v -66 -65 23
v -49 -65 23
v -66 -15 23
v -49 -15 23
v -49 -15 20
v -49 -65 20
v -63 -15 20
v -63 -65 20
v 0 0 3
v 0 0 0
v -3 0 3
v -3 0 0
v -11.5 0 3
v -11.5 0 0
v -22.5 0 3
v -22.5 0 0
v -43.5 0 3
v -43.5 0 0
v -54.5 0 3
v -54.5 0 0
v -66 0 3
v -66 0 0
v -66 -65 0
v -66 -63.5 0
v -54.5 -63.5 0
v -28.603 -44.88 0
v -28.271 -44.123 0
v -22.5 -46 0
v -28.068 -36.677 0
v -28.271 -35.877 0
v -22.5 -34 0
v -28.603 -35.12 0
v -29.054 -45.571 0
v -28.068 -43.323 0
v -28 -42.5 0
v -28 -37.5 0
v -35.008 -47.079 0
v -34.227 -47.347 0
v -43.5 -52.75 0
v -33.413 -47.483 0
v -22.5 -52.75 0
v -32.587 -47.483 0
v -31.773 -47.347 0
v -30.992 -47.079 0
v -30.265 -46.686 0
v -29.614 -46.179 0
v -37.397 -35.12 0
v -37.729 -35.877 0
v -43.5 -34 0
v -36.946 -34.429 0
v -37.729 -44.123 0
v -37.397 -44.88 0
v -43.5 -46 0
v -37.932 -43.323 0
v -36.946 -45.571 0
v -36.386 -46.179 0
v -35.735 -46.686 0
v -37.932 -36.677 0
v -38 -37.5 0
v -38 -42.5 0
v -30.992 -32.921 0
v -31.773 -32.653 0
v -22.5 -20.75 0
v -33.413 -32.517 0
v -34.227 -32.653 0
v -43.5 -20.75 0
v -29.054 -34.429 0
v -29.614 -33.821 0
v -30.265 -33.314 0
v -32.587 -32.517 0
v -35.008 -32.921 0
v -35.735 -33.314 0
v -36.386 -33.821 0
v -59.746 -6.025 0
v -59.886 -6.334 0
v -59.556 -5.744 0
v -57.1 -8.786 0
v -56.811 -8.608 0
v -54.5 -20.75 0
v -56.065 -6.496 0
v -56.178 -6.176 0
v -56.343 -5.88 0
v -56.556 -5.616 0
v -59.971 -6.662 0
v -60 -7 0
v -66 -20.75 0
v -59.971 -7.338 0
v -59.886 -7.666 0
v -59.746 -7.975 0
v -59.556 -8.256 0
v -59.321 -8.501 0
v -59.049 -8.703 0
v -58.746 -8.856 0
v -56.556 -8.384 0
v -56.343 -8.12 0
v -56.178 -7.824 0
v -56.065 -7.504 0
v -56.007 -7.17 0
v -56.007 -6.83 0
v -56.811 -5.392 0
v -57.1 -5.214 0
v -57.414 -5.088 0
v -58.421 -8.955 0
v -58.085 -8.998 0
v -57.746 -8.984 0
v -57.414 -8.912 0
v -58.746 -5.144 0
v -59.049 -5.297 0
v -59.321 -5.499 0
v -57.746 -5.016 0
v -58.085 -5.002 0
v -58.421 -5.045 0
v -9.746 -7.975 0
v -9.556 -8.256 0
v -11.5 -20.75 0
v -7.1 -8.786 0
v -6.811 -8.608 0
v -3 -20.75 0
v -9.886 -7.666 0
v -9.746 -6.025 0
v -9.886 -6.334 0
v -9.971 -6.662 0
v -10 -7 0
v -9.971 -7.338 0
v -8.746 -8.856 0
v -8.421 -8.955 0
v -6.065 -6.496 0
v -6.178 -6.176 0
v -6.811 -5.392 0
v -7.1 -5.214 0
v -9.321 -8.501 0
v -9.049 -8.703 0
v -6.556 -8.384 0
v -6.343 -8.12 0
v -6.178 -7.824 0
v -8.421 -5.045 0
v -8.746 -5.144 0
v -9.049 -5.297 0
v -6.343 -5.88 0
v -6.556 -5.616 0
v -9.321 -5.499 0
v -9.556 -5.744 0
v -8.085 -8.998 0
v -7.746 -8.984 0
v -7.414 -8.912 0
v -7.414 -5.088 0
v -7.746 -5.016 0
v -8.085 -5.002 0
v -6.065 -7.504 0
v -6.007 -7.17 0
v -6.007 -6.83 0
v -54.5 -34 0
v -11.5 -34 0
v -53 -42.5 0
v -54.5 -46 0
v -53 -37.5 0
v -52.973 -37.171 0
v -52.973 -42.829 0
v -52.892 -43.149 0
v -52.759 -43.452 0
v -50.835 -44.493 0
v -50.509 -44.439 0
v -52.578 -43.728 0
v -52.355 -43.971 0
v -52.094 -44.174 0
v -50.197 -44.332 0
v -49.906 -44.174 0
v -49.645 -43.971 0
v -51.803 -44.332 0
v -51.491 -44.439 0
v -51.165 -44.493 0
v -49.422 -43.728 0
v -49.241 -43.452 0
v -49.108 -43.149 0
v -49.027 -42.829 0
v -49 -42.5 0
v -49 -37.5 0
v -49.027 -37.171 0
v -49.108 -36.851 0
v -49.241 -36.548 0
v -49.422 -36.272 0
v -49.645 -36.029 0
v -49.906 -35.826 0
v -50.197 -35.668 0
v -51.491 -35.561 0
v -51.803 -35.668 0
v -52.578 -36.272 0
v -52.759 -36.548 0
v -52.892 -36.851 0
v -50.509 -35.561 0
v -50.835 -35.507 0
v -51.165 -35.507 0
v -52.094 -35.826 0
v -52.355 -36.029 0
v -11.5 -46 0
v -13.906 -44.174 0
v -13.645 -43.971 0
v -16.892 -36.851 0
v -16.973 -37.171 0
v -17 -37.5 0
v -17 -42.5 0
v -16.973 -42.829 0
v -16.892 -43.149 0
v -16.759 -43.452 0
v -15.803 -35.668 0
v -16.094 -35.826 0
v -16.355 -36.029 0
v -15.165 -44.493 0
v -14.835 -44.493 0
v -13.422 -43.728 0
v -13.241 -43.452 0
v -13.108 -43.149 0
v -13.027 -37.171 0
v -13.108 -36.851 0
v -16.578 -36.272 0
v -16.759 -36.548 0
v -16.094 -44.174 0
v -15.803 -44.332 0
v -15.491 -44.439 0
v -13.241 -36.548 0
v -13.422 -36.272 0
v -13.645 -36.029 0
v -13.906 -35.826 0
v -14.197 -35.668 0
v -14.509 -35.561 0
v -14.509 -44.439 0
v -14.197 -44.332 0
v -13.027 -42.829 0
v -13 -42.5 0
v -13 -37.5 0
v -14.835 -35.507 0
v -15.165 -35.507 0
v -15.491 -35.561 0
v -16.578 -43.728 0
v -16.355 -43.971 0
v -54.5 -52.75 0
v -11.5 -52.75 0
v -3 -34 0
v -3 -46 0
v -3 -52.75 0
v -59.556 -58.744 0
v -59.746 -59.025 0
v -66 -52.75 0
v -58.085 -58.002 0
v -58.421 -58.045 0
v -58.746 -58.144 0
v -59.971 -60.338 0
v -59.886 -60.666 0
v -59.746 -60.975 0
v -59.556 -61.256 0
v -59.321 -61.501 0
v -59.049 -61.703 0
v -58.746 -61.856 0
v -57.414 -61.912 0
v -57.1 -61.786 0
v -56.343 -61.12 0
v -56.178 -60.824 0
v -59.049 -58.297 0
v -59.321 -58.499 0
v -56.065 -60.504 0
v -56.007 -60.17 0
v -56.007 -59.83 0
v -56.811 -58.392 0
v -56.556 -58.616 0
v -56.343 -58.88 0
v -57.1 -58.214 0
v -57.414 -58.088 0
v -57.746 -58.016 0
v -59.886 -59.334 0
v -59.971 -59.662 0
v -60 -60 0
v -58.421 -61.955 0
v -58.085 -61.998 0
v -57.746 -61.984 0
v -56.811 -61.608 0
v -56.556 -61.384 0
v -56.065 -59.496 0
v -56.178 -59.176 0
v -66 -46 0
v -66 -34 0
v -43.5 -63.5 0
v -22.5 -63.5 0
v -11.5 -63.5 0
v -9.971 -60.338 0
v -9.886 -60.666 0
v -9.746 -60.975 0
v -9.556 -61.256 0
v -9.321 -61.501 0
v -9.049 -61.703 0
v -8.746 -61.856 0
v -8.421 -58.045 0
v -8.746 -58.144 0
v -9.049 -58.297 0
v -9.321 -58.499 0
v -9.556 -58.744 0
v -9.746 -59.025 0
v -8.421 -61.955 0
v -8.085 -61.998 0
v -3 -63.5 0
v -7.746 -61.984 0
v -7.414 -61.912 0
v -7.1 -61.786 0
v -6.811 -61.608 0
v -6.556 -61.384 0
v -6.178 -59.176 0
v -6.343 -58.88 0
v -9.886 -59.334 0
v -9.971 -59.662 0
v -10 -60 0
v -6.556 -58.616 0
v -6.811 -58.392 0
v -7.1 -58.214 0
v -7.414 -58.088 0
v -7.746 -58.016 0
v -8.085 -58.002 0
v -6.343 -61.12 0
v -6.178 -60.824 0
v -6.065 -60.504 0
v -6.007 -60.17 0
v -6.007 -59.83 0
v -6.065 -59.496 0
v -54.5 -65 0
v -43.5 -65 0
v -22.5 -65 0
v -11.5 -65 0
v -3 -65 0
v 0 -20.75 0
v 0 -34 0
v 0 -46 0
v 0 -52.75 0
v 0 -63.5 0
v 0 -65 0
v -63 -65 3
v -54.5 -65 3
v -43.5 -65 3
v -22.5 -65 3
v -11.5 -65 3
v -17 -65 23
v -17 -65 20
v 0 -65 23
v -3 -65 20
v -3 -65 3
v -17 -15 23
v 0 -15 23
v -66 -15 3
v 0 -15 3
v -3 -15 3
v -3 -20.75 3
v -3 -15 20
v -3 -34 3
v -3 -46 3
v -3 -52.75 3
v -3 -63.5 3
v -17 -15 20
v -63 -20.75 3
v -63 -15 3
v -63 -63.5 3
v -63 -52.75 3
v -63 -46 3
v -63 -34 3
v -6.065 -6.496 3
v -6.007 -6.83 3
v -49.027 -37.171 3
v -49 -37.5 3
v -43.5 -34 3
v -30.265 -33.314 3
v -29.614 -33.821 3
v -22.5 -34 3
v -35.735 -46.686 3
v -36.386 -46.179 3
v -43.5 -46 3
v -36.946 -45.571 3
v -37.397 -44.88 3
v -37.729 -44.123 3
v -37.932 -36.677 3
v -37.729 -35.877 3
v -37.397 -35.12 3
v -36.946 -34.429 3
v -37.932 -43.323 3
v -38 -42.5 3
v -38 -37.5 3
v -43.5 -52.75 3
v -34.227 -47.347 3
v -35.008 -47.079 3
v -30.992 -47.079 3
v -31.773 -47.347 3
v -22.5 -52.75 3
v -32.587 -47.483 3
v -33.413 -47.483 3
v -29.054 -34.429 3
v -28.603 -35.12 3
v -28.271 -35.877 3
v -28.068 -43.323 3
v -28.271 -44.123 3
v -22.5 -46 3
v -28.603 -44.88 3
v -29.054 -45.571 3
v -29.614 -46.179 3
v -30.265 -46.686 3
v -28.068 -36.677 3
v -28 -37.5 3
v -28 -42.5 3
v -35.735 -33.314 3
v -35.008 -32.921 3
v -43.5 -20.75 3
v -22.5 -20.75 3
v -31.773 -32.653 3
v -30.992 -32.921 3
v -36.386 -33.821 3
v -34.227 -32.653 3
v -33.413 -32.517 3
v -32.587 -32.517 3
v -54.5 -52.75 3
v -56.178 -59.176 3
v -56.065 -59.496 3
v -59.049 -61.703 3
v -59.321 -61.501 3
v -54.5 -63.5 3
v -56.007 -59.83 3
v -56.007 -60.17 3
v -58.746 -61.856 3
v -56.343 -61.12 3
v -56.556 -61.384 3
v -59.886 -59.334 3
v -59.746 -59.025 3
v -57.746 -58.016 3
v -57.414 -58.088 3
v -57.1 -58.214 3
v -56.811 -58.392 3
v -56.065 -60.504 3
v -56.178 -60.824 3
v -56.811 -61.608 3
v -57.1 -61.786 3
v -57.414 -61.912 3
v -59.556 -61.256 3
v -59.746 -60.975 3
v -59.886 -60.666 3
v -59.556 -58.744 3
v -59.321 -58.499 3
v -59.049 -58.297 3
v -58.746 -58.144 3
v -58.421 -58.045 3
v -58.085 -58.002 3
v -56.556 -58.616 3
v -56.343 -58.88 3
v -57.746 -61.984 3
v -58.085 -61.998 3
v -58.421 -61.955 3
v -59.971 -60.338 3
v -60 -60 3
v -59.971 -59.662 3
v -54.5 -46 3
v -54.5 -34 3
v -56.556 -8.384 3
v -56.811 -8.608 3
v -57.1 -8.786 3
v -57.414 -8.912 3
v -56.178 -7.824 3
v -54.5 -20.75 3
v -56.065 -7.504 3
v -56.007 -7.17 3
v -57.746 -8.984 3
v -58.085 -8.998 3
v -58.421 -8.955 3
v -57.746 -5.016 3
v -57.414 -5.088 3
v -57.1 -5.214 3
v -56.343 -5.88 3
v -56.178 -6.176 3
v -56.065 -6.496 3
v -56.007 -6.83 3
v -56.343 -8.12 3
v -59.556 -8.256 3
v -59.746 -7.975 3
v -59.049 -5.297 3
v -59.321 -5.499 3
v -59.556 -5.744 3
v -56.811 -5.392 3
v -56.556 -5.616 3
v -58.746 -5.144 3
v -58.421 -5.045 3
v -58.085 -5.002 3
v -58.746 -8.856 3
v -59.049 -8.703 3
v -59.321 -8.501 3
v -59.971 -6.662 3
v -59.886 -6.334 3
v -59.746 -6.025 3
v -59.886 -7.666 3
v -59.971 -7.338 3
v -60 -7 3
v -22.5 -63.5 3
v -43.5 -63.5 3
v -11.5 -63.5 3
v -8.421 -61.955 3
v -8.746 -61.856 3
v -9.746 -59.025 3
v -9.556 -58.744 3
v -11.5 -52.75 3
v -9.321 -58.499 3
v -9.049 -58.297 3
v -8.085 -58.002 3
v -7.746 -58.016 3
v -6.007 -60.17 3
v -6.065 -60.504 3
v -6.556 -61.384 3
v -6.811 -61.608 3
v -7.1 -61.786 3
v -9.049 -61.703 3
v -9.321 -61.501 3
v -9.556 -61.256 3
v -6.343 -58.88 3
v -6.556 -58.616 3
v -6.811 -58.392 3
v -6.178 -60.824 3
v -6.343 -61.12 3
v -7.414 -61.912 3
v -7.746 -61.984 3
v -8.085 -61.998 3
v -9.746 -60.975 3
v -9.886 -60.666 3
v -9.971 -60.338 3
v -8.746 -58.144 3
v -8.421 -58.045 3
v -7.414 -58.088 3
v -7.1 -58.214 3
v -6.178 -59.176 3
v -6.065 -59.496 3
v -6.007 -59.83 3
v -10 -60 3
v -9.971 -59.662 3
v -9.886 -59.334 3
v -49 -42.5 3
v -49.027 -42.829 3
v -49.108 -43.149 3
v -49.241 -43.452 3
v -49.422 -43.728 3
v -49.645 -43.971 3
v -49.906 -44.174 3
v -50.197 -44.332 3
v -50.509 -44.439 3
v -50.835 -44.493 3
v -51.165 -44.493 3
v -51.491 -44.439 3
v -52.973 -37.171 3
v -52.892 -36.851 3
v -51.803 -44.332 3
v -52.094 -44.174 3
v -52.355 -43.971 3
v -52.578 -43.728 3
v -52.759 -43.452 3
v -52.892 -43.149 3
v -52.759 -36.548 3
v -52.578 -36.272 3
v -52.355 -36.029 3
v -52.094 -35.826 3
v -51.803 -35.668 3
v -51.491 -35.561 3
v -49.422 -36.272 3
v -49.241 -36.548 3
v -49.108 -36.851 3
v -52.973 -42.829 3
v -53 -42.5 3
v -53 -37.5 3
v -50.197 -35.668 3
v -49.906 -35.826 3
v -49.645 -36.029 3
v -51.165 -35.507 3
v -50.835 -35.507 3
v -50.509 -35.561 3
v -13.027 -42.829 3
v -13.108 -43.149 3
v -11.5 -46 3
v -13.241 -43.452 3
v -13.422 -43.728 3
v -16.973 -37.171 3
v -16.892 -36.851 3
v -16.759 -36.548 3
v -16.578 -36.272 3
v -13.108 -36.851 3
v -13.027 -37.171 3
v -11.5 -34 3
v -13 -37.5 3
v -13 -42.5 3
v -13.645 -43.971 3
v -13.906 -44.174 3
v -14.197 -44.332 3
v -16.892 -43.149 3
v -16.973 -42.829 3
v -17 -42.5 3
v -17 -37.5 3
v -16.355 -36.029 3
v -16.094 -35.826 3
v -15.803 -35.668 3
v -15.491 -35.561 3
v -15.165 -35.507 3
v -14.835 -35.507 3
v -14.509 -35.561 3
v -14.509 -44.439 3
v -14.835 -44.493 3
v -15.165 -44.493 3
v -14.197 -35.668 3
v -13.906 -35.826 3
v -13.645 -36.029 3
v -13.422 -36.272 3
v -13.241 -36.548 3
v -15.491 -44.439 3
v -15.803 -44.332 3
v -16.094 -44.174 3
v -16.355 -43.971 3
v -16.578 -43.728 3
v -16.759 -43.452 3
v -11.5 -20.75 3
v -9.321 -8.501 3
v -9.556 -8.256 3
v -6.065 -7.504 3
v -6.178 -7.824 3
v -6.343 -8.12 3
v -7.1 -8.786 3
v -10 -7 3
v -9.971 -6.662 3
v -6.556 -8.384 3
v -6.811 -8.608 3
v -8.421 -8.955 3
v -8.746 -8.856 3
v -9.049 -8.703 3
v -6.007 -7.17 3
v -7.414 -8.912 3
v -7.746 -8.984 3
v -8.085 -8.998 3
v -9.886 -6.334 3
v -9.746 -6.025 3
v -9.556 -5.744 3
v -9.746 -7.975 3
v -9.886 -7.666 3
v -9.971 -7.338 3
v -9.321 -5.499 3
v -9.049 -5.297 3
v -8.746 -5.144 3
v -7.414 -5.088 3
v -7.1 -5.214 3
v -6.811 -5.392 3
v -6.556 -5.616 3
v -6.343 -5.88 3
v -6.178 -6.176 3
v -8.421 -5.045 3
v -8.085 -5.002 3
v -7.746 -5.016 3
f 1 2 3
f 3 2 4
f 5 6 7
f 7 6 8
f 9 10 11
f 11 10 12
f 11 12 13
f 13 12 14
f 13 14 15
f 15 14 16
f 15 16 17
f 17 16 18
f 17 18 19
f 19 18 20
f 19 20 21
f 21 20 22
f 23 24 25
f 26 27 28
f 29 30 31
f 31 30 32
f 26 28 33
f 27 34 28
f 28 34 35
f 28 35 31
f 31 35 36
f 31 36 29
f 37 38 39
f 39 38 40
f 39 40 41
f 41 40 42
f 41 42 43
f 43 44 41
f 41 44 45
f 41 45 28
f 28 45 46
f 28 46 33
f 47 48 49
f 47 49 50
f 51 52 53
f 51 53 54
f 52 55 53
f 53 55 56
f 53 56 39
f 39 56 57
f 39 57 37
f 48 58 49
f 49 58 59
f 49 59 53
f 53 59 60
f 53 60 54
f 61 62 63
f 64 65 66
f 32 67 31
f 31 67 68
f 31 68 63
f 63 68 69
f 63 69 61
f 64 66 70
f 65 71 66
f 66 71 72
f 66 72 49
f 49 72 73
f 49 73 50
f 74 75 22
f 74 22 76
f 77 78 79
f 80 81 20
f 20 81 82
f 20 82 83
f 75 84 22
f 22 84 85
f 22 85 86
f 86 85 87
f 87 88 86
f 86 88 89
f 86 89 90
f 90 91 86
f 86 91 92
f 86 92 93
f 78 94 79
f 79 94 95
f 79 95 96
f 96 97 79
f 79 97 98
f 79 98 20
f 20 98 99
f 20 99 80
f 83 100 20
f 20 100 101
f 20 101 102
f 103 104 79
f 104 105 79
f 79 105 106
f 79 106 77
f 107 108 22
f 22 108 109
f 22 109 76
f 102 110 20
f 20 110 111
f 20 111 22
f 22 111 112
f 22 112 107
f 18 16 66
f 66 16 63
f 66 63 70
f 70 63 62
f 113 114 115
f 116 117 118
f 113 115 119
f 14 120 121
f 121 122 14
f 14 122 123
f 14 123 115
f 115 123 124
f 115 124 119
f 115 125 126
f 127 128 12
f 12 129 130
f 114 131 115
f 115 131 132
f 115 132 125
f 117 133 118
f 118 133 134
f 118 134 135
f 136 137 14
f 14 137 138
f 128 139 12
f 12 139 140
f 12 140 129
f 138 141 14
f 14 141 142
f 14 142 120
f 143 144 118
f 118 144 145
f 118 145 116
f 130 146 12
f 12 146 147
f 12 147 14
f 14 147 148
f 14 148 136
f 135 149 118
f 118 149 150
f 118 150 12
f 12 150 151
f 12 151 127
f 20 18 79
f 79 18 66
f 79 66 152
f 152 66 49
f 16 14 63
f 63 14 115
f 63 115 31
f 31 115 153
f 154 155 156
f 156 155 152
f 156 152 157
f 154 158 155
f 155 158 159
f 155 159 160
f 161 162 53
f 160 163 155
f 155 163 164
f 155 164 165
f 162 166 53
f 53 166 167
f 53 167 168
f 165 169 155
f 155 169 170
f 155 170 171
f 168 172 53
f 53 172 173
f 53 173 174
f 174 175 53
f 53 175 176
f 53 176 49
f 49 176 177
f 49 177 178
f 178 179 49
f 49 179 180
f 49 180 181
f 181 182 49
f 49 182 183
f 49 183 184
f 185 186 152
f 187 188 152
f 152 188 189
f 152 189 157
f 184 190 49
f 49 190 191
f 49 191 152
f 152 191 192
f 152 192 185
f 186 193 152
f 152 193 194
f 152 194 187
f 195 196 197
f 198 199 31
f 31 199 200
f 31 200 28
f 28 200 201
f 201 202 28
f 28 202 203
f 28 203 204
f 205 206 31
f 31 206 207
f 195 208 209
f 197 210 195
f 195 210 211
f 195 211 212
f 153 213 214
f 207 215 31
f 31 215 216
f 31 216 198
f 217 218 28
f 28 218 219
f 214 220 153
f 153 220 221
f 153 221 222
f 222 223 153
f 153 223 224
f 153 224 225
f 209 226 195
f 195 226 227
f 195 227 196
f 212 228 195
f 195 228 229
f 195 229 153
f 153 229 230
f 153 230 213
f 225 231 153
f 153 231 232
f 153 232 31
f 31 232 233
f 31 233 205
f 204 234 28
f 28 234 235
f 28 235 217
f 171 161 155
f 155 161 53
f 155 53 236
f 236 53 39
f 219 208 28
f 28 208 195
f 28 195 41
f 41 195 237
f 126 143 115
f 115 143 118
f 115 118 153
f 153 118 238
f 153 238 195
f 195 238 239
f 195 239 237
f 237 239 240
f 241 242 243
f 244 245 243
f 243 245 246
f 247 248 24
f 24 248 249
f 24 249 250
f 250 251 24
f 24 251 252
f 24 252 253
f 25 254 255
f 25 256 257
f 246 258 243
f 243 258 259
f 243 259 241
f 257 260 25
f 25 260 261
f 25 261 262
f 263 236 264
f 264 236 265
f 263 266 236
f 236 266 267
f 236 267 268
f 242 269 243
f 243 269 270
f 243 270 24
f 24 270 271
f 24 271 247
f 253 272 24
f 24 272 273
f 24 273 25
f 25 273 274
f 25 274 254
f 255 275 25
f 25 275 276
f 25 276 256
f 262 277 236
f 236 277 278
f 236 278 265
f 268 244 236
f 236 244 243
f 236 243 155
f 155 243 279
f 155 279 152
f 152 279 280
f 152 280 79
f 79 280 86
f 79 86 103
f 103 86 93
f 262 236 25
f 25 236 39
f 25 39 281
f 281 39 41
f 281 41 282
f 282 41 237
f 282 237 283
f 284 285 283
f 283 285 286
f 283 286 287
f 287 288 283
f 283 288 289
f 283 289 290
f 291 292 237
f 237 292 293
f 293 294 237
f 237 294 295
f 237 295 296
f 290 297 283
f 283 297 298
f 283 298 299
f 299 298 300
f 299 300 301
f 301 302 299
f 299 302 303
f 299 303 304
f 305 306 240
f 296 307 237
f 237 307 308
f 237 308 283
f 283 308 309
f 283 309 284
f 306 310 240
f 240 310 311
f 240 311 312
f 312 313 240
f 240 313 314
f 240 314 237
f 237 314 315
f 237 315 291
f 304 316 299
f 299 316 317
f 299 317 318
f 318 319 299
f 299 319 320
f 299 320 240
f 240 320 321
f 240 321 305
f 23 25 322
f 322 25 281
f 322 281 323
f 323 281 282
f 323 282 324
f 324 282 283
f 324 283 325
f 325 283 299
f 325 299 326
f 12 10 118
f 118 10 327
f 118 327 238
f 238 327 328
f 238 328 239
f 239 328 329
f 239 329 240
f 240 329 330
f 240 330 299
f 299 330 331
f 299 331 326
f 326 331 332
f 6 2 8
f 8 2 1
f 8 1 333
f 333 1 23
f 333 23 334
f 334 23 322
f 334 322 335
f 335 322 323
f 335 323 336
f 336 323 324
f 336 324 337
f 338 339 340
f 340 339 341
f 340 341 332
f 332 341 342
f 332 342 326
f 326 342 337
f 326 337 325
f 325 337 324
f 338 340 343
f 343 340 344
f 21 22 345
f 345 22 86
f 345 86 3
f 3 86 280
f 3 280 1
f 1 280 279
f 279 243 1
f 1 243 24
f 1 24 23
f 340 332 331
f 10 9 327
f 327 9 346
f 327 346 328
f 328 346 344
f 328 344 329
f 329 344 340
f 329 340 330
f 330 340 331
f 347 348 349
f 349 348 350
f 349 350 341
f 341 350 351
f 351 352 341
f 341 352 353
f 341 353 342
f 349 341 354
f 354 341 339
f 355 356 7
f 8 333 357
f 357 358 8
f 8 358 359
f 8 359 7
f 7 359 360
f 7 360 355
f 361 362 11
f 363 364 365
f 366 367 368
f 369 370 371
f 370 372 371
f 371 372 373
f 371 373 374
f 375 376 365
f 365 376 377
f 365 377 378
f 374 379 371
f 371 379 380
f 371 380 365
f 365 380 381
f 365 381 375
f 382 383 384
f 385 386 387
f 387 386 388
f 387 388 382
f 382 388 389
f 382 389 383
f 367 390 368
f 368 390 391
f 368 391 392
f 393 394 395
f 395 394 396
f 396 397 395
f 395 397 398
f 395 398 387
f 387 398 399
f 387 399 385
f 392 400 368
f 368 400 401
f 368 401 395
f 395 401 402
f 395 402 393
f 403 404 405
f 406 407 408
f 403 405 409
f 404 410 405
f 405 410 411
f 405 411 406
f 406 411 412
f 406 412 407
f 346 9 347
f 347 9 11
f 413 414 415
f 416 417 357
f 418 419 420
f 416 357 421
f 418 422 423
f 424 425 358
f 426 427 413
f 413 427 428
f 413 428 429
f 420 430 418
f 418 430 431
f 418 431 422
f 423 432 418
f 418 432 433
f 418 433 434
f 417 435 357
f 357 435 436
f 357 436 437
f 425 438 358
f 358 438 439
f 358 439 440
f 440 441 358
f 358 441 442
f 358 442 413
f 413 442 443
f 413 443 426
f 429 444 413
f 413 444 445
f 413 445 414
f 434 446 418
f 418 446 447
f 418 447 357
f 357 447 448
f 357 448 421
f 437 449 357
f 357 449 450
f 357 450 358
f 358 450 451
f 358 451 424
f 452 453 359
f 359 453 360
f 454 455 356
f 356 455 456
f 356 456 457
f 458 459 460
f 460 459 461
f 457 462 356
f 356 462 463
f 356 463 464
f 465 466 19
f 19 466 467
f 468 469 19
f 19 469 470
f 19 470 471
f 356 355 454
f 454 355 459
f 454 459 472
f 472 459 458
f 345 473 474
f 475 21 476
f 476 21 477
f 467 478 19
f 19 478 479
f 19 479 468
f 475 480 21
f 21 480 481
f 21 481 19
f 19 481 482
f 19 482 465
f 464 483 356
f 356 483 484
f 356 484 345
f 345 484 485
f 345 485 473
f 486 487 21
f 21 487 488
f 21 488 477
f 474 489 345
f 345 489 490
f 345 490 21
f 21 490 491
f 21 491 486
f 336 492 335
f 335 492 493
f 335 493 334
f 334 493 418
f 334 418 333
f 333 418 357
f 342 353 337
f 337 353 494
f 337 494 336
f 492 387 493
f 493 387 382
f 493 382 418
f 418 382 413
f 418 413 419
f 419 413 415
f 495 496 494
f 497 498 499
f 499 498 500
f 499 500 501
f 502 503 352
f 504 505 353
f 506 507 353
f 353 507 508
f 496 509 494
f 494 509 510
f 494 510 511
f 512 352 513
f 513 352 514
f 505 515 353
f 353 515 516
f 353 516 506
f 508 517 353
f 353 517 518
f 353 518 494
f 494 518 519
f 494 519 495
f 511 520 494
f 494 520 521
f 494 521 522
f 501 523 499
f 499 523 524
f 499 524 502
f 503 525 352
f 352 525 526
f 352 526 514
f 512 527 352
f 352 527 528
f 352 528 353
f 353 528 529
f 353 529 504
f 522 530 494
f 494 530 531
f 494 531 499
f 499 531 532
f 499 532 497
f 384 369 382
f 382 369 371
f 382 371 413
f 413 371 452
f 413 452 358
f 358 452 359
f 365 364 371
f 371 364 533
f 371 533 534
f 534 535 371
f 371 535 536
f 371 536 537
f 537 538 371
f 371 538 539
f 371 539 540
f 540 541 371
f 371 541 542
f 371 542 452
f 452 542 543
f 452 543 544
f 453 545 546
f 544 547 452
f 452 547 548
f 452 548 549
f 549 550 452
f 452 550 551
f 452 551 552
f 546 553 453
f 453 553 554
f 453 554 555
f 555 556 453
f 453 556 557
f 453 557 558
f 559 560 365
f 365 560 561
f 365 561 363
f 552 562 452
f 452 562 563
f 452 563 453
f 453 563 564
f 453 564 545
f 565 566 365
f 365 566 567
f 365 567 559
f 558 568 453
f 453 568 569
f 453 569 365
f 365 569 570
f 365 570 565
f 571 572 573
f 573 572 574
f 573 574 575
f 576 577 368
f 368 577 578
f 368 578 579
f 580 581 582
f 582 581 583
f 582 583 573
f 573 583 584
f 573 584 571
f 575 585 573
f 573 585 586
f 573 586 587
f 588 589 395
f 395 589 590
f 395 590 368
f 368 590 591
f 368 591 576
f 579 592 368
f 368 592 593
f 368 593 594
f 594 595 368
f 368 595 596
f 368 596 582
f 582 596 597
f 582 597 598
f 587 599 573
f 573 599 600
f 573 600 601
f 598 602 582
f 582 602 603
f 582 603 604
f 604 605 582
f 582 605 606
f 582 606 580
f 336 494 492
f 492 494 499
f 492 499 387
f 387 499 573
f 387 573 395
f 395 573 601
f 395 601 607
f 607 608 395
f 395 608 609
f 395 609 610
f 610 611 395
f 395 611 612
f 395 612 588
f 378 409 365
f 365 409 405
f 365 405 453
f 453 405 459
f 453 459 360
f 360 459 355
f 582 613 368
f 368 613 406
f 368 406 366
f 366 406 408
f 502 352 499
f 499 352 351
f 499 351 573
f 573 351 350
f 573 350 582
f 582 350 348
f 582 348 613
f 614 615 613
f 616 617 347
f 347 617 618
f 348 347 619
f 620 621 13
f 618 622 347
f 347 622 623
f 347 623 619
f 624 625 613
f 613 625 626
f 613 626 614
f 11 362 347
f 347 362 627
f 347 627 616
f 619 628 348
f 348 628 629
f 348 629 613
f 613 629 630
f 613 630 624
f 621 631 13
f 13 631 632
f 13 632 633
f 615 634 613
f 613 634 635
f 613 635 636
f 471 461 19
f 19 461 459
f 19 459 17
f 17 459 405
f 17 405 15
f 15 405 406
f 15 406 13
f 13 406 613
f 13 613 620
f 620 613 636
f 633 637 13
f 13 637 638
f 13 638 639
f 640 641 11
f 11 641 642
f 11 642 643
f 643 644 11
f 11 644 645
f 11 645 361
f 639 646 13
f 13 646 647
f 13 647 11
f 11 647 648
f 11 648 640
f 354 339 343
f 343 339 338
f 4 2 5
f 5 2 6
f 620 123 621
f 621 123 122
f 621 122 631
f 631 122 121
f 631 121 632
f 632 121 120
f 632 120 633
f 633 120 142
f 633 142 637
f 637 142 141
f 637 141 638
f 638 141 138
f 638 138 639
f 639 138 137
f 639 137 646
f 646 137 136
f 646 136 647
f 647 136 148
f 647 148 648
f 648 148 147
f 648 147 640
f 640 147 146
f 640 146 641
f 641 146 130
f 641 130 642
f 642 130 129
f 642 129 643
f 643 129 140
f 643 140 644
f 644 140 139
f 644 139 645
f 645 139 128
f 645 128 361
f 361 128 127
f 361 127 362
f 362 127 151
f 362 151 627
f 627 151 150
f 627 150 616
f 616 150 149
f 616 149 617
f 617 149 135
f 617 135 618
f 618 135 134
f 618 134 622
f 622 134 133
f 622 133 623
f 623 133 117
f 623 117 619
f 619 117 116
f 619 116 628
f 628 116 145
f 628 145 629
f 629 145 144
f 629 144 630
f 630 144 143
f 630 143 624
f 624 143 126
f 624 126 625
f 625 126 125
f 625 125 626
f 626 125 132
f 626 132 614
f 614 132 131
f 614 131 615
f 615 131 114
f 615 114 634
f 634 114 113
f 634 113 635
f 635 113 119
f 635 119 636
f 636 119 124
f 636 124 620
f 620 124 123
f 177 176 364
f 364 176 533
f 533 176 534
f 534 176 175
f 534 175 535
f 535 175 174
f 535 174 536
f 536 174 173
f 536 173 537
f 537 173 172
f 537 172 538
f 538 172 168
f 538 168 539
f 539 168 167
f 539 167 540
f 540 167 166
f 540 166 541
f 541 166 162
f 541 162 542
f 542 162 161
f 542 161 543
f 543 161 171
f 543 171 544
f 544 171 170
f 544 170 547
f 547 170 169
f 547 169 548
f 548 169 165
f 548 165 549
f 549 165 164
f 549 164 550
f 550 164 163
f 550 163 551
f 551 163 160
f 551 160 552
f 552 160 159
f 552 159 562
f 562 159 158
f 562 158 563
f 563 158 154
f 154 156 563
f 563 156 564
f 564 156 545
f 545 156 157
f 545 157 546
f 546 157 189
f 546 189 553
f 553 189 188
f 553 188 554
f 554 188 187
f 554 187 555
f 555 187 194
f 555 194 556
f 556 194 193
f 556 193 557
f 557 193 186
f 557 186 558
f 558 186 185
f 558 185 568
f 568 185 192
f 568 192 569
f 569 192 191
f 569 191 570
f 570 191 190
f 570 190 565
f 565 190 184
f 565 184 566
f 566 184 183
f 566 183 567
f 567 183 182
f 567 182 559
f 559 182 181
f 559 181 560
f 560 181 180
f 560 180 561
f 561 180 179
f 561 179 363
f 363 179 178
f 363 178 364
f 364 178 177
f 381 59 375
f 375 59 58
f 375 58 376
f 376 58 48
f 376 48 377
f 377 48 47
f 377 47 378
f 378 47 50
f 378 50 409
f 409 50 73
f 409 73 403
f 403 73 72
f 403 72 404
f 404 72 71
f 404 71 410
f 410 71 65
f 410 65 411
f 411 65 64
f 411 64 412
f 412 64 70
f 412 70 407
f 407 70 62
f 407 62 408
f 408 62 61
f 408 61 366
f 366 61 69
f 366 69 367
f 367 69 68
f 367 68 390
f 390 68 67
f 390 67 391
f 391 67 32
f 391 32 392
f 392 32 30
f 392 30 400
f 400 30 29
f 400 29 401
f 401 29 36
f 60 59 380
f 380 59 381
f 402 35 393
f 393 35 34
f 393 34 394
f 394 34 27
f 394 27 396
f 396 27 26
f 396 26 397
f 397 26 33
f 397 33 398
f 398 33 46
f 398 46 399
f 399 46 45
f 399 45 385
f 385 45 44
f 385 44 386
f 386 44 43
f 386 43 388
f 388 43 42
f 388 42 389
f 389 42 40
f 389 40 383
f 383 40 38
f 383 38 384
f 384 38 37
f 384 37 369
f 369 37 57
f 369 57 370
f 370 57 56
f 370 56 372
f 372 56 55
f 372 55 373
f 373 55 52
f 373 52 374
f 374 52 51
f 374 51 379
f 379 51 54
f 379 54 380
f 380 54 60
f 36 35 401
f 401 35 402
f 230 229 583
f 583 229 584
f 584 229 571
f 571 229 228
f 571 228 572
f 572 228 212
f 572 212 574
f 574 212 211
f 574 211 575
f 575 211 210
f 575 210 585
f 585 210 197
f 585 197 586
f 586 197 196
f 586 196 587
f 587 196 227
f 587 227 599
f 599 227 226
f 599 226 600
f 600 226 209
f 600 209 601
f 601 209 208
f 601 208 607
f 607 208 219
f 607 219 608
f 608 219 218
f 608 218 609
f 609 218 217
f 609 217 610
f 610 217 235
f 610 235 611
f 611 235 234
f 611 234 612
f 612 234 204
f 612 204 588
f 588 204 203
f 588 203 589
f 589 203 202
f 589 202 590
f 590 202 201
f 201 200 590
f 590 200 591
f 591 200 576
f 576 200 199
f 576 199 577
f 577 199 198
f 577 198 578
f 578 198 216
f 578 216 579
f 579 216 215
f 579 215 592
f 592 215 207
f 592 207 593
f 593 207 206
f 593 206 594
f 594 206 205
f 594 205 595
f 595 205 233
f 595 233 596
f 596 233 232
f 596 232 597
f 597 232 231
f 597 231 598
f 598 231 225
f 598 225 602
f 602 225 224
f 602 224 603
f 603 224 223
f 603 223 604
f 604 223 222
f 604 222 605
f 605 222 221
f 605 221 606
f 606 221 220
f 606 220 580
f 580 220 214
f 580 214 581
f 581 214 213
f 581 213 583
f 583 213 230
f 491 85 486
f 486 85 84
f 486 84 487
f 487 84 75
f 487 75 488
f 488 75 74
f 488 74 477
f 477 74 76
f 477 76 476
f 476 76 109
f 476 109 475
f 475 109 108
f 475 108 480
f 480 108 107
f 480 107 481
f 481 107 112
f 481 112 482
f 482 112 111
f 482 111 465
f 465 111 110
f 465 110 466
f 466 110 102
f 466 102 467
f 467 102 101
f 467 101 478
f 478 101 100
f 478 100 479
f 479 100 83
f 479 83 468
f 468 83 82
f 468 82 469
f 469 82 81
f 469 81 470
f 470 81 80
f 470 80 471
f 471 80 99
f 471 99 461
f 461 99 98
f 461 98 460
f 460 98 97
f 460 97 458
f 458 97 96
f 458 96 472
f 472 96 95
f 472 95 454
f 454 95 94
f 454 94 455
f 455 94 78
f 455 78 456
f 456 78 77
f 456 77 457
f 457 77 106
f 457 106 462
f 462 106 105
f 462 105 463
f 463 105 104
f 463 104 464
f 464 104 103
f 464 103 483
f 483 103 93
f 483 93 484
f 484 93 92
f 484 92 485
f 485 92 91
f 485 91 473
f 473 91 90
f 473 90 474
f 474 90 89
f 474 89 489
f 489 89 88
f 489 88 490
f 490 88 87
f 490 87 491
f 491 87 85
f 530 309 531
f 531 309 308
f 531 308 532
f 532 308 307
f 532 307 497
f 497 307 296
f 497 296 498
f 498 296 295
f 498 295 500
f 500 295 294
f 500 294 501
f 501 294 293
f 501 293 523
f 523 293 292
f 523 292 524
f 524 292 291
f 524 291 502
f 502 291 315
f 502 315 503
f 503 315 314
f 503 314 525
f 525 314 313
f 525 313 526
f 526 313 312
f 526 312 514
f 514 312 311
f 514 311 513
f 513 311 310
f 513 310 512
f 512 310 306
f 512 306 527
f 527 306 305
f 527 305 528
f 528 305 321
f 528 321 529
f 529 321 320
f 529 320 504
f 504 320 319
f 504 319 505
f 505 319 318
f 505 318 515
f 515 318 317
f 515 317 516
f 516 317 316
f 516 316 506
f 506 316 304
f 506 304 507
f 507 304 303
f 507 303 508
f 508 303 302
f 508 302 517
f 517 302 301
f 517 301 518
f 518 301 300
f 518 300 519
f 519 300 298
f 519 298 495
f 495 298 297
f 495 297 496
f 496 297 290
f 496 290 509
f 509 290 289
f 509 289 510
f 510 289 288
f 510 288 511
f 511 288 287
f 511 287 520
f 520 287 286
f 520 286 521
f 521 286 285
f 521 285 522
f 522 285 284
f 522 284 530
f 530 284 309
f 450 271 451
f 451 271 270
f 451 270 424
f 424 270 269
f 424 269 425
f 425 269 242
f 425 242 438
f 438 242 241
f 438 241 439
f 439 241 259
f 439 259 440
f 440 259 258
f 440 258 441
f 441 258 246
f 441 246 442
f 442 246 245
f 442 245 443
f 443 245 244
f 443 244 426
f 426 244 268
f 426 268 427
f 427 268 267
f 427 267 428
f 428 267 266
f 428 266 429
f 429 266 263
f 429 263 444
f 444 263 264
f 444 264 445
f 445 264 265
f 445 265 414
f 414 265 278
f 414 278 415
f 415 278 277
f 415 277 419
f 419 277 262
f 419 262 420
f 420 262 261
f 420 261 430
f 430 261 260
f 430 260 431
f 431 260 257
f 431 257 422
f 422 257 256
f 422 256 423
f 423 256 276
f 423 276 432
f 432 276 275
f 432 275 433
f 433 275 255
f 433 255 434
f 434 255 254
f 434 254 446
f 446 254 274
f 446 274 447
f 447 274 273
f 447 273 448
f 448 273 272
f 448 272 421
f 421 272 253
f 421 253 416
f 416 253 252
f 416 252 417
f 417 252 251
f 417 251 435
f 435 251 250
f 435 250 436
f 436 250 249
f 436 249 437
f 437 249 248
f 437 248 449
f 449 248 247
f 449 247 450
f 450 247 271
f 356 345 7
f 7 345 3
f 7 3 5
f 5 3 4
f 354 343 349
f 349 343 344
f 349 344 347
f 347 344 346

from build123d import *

# Parameters (mm, degrees)
SKETCH1_W           = 23
SKETCH1_H           = 65
BOSS_EXTRUDE1_DEPTH = 66
SKETCH2_W           = 60
SKETCH2_H           = 17
CUT_EXTRUDE1_DEPTH  = 66
CUT_EXTRUDE2_REACH  = 25
SKETCH3_W           = 32
SKETCH3_H           = 65
CUT_EXTRUDE3_REACH  = 25
SKETCH5_R           = 2
SKETCH6_W           = 17
SKETCH6_H           = 15
CUT_EXTRUDE4_DEPTH  = 20


with BuildPart() as part:
    # Sketch1 → Boss-Extrude1 (new body)
    with BuildSketch(Plane(origin=(0, 0, 0), x_dir=(0, 0, -1), z_dir=(1, 0, 0))):
        with Locations((-11.5, -32.5)):
            Rectangle(SKETCH1_W, SKETCH1_H)
    extrude(amount=-BOSS_EXTRUDE1_DEPTH)

    # Sketch2 → Cut-Extrude1 (cut, through all)
    with BuildSketch(Plane(origin=(0, 0, 0), x_dir=(1, 0, 0), z_dir=(0, 1, 0))):
        with Locations((-33, -11.5)):
            Rectangle(SKETCH2_W, SKETCH2_H)
    extrude(amount=-CUT_EXTRUDE1_DEPTH, mode=Mode.SUBTRACT)

    # Sketch3 → Cut-Extrude2 (cut, up to next)
    with BuildSketch(Plane.XY.offset(23), mode=Mode.PRIVATE) as cut_extrude2_sk1:
        with Locations((-33, -32.5)):
            Rectangle(SKETCH3_W, SKETCH3_H)
    cut_extrude2_tool1 = extrude(cut_extrude2_sk1.sketch, amount=-CUT_EXTRUDE2_REACH, mode=Mode.PRIVATE) & part.part
    add(cut_extrude2_tool1.solids().sort_by_distance((-33, -32.5, 23))[0], mode=Mode.SUBTRACT)

    # Sketch5 → Cut-Extrude3 (cut, up to next)
    with BuildSketch(Plane(origin=(0, 0, 0), x_dir=(-1, 0, 0), z_dir=(0, 0, -1)), mode=Mode.PRIVATE) as cut_extrude3_sk1:
        with Locations((8, -7)):
            Circle(SKETCH5_R)
    cut_extrude3_tool1 = extrude(cut_extrude3_sk1.sketch, amount=-CUT_EXTRUDE3_REACH, mode=Mode.PRIVATE) & part.part
    add(cut_extrude3_tool1.solids().sort_by_distance((-8, -7, 0))[0], mode=Mode.SUBTRACT)
    # Sketch5 → Cut-Extrude3 (cut, up to next)
    with BuildSketch(Plane(origin=(0, 0, 0), x_dir=(-1, 0, 0), z_dir=(0, 0, -1)), mode=Mode.PRIVATE) as cut_extrude3_sk2:
        with Locations((58, -7)):
            Circle(SKETCH5_R)
    cut_extrude3_tool2 = extrude(cut_extrude3_sk2.sketch, amount=-CUT_EXTRUDE3_REACH, mode=Mode.PRIVATE) & part.part
    add(cut_extrude3_tool2.solids().sort_by_distance((-58, -7, 0))[0], mode=Mode.SUBTRACT)
    # Sketch5 → Cut-Extrude3 (cut, up to next)
    with BuildSketch(Plane(origin=(0, 0, 0), x_dir=(-1, 0, 0), z_dir=(0, 0, -1)), mode=Mode.PRIVATE) as cut_extrude3_sk3:
        with Locations((8, -60)):
            Circle(SKETCH5_R)
    cut_extrude3_tool3 = extrude(cut_extrude3_sk3.sketch, amount=-CUT_EXTRUDE3_REACH, mode=Mode.PRIVATE) & part.part
    add(cut_extrude3_tool3.solids().sort_by_distance((-8, -60, 0))[0], mode=Mode.SUBTRACT)
    # Sketch5 → Cut-Extrude3 (cut, up to next)
    with BuildSketch(Plane(origin=(0, 0, 0), x_dir=(-1, 0, 0), z_dir=(0, 0, -1)), mode=Mode.PRIVATE) as cut_extrude3_sk4:
        with Locations((58, -60)):
            Circle(SKETCH5_R)
    cut_extrude3_tool4 = extrude(cut_extrude3_sk4.sketch, amount=-CUT_EXTRUDE3_REACH, mode=Mode.PRIVATE) & part.part
    add(cut_extrude3_tool4.solids().sort_by_distance((-58, -60, 0))[0], mode=Mode.SUBTRACT)
    # Sketch5 → Cut-Extrude3 (cut, up to next)
    with BuildSketch(Plane(origin=(0, 0, 0), x_dir=(-1, 0, 0), z_dir=(0, 0, -1)), mode=Mode.PRIVATE) as cut_extrude3_sk5:
        with BuildLine():
            Line((38, -37.5), (38, -42.5))
            ThreePointArc((38, -42.5), (33, -47.5), (28, -42.5))
            Line((28, -42.5), (28, -37.5))
            ThreePointArc((28, -37.5), (33, -32.5), (38, -37.5))
        make_face()
    cut_extrude3_tool5 = extrude(cut_extrude3_sk5.sketch, amount=-CUT_EXTRUDE3_REACH, mode=Mode.PRIVATE) & part.part
    add(cut_extrude3_tool5.solids().sort_by_distance((-33, -40, 0))[0], mode=Mode.SUBTRACT)
    # Sketch5 → Cut-Extrude3 (cut, up to next)
    with BuildSketch(Plane(origin=(0, 0, 0), x_dir=(-1, 0, 0), z_dir=(0, 0, -1)), mode=Mode.PRIVATE) as cut_extrude3_sk6:
        with BuildLine():
            Line((17, -37.5), (17, -42.5))
            ThreePointArc((17, -42.5), (15, -44.5), (13, -42.5))
            Line((13, -42.5), (13, -37.5))
            ThreePointArc((13, -37.5), (15, -35.5), (17, -37.5))
        make_face()
    cut_extrude3_tool6 = extrude(cut_extrude3_sk6.sketch, amount=-CUT_EXTRUDE3_REACH, mode=Mode.PRIVATE) & part.part
    add(cut_extrude3_tool6.solids().sort_by_distance((-15, -40, 0))[0], mode=Mode.SUBTRACT)
    # Sketch5 → Cut-Extrude3 (cut, up to next)
    with BuildSketch(Plane(origin=(0, 0, 0), x_dir=(-1, 0, 0), z_dir=(0, 0, -1)), mode=Mode.PRIVATE) as cut_extrude3_sk7:
        with BuildLine():
            Line((53, -37.5), (53, -42.5))
            ThreePointArc((53, -42.5), (51, -44.5), (49, -42.5))
            Line((49, -42.5), (49, -37.5))
            ThreePointArc((49, -37.5), (51, -35.5), (53, -37.5))
        make_face()
    cut_extrude3_tool7 = extrude(cut_extrude3_sk7.sketch, amount=-CUT_EXTRUDE3_REACH, mode=Mode.PRIVATE) & part.part
    add(cut_extrude3_tool7.solids().sort_by_distance((-51, -40, 0))[0], mode=Mode.SUBTRACT)

    # Sketch6 → Cut-Extrude4 (cut)
    with BuildSketch(Plane.XY.offset(23)):
        with Locations((-57.5, -7.5)):
            Rectangle(SKETCH6_W, SKETCH6_H)
        with Locations((-8.5, -7.5)):
            Rectangle(SKETCH6_W, SKETCH6_H)
    extrude(amount=-CUT_EXTRUDE4_DEPTH, mode=Mode.SUBTRACT)


solid = part.part
